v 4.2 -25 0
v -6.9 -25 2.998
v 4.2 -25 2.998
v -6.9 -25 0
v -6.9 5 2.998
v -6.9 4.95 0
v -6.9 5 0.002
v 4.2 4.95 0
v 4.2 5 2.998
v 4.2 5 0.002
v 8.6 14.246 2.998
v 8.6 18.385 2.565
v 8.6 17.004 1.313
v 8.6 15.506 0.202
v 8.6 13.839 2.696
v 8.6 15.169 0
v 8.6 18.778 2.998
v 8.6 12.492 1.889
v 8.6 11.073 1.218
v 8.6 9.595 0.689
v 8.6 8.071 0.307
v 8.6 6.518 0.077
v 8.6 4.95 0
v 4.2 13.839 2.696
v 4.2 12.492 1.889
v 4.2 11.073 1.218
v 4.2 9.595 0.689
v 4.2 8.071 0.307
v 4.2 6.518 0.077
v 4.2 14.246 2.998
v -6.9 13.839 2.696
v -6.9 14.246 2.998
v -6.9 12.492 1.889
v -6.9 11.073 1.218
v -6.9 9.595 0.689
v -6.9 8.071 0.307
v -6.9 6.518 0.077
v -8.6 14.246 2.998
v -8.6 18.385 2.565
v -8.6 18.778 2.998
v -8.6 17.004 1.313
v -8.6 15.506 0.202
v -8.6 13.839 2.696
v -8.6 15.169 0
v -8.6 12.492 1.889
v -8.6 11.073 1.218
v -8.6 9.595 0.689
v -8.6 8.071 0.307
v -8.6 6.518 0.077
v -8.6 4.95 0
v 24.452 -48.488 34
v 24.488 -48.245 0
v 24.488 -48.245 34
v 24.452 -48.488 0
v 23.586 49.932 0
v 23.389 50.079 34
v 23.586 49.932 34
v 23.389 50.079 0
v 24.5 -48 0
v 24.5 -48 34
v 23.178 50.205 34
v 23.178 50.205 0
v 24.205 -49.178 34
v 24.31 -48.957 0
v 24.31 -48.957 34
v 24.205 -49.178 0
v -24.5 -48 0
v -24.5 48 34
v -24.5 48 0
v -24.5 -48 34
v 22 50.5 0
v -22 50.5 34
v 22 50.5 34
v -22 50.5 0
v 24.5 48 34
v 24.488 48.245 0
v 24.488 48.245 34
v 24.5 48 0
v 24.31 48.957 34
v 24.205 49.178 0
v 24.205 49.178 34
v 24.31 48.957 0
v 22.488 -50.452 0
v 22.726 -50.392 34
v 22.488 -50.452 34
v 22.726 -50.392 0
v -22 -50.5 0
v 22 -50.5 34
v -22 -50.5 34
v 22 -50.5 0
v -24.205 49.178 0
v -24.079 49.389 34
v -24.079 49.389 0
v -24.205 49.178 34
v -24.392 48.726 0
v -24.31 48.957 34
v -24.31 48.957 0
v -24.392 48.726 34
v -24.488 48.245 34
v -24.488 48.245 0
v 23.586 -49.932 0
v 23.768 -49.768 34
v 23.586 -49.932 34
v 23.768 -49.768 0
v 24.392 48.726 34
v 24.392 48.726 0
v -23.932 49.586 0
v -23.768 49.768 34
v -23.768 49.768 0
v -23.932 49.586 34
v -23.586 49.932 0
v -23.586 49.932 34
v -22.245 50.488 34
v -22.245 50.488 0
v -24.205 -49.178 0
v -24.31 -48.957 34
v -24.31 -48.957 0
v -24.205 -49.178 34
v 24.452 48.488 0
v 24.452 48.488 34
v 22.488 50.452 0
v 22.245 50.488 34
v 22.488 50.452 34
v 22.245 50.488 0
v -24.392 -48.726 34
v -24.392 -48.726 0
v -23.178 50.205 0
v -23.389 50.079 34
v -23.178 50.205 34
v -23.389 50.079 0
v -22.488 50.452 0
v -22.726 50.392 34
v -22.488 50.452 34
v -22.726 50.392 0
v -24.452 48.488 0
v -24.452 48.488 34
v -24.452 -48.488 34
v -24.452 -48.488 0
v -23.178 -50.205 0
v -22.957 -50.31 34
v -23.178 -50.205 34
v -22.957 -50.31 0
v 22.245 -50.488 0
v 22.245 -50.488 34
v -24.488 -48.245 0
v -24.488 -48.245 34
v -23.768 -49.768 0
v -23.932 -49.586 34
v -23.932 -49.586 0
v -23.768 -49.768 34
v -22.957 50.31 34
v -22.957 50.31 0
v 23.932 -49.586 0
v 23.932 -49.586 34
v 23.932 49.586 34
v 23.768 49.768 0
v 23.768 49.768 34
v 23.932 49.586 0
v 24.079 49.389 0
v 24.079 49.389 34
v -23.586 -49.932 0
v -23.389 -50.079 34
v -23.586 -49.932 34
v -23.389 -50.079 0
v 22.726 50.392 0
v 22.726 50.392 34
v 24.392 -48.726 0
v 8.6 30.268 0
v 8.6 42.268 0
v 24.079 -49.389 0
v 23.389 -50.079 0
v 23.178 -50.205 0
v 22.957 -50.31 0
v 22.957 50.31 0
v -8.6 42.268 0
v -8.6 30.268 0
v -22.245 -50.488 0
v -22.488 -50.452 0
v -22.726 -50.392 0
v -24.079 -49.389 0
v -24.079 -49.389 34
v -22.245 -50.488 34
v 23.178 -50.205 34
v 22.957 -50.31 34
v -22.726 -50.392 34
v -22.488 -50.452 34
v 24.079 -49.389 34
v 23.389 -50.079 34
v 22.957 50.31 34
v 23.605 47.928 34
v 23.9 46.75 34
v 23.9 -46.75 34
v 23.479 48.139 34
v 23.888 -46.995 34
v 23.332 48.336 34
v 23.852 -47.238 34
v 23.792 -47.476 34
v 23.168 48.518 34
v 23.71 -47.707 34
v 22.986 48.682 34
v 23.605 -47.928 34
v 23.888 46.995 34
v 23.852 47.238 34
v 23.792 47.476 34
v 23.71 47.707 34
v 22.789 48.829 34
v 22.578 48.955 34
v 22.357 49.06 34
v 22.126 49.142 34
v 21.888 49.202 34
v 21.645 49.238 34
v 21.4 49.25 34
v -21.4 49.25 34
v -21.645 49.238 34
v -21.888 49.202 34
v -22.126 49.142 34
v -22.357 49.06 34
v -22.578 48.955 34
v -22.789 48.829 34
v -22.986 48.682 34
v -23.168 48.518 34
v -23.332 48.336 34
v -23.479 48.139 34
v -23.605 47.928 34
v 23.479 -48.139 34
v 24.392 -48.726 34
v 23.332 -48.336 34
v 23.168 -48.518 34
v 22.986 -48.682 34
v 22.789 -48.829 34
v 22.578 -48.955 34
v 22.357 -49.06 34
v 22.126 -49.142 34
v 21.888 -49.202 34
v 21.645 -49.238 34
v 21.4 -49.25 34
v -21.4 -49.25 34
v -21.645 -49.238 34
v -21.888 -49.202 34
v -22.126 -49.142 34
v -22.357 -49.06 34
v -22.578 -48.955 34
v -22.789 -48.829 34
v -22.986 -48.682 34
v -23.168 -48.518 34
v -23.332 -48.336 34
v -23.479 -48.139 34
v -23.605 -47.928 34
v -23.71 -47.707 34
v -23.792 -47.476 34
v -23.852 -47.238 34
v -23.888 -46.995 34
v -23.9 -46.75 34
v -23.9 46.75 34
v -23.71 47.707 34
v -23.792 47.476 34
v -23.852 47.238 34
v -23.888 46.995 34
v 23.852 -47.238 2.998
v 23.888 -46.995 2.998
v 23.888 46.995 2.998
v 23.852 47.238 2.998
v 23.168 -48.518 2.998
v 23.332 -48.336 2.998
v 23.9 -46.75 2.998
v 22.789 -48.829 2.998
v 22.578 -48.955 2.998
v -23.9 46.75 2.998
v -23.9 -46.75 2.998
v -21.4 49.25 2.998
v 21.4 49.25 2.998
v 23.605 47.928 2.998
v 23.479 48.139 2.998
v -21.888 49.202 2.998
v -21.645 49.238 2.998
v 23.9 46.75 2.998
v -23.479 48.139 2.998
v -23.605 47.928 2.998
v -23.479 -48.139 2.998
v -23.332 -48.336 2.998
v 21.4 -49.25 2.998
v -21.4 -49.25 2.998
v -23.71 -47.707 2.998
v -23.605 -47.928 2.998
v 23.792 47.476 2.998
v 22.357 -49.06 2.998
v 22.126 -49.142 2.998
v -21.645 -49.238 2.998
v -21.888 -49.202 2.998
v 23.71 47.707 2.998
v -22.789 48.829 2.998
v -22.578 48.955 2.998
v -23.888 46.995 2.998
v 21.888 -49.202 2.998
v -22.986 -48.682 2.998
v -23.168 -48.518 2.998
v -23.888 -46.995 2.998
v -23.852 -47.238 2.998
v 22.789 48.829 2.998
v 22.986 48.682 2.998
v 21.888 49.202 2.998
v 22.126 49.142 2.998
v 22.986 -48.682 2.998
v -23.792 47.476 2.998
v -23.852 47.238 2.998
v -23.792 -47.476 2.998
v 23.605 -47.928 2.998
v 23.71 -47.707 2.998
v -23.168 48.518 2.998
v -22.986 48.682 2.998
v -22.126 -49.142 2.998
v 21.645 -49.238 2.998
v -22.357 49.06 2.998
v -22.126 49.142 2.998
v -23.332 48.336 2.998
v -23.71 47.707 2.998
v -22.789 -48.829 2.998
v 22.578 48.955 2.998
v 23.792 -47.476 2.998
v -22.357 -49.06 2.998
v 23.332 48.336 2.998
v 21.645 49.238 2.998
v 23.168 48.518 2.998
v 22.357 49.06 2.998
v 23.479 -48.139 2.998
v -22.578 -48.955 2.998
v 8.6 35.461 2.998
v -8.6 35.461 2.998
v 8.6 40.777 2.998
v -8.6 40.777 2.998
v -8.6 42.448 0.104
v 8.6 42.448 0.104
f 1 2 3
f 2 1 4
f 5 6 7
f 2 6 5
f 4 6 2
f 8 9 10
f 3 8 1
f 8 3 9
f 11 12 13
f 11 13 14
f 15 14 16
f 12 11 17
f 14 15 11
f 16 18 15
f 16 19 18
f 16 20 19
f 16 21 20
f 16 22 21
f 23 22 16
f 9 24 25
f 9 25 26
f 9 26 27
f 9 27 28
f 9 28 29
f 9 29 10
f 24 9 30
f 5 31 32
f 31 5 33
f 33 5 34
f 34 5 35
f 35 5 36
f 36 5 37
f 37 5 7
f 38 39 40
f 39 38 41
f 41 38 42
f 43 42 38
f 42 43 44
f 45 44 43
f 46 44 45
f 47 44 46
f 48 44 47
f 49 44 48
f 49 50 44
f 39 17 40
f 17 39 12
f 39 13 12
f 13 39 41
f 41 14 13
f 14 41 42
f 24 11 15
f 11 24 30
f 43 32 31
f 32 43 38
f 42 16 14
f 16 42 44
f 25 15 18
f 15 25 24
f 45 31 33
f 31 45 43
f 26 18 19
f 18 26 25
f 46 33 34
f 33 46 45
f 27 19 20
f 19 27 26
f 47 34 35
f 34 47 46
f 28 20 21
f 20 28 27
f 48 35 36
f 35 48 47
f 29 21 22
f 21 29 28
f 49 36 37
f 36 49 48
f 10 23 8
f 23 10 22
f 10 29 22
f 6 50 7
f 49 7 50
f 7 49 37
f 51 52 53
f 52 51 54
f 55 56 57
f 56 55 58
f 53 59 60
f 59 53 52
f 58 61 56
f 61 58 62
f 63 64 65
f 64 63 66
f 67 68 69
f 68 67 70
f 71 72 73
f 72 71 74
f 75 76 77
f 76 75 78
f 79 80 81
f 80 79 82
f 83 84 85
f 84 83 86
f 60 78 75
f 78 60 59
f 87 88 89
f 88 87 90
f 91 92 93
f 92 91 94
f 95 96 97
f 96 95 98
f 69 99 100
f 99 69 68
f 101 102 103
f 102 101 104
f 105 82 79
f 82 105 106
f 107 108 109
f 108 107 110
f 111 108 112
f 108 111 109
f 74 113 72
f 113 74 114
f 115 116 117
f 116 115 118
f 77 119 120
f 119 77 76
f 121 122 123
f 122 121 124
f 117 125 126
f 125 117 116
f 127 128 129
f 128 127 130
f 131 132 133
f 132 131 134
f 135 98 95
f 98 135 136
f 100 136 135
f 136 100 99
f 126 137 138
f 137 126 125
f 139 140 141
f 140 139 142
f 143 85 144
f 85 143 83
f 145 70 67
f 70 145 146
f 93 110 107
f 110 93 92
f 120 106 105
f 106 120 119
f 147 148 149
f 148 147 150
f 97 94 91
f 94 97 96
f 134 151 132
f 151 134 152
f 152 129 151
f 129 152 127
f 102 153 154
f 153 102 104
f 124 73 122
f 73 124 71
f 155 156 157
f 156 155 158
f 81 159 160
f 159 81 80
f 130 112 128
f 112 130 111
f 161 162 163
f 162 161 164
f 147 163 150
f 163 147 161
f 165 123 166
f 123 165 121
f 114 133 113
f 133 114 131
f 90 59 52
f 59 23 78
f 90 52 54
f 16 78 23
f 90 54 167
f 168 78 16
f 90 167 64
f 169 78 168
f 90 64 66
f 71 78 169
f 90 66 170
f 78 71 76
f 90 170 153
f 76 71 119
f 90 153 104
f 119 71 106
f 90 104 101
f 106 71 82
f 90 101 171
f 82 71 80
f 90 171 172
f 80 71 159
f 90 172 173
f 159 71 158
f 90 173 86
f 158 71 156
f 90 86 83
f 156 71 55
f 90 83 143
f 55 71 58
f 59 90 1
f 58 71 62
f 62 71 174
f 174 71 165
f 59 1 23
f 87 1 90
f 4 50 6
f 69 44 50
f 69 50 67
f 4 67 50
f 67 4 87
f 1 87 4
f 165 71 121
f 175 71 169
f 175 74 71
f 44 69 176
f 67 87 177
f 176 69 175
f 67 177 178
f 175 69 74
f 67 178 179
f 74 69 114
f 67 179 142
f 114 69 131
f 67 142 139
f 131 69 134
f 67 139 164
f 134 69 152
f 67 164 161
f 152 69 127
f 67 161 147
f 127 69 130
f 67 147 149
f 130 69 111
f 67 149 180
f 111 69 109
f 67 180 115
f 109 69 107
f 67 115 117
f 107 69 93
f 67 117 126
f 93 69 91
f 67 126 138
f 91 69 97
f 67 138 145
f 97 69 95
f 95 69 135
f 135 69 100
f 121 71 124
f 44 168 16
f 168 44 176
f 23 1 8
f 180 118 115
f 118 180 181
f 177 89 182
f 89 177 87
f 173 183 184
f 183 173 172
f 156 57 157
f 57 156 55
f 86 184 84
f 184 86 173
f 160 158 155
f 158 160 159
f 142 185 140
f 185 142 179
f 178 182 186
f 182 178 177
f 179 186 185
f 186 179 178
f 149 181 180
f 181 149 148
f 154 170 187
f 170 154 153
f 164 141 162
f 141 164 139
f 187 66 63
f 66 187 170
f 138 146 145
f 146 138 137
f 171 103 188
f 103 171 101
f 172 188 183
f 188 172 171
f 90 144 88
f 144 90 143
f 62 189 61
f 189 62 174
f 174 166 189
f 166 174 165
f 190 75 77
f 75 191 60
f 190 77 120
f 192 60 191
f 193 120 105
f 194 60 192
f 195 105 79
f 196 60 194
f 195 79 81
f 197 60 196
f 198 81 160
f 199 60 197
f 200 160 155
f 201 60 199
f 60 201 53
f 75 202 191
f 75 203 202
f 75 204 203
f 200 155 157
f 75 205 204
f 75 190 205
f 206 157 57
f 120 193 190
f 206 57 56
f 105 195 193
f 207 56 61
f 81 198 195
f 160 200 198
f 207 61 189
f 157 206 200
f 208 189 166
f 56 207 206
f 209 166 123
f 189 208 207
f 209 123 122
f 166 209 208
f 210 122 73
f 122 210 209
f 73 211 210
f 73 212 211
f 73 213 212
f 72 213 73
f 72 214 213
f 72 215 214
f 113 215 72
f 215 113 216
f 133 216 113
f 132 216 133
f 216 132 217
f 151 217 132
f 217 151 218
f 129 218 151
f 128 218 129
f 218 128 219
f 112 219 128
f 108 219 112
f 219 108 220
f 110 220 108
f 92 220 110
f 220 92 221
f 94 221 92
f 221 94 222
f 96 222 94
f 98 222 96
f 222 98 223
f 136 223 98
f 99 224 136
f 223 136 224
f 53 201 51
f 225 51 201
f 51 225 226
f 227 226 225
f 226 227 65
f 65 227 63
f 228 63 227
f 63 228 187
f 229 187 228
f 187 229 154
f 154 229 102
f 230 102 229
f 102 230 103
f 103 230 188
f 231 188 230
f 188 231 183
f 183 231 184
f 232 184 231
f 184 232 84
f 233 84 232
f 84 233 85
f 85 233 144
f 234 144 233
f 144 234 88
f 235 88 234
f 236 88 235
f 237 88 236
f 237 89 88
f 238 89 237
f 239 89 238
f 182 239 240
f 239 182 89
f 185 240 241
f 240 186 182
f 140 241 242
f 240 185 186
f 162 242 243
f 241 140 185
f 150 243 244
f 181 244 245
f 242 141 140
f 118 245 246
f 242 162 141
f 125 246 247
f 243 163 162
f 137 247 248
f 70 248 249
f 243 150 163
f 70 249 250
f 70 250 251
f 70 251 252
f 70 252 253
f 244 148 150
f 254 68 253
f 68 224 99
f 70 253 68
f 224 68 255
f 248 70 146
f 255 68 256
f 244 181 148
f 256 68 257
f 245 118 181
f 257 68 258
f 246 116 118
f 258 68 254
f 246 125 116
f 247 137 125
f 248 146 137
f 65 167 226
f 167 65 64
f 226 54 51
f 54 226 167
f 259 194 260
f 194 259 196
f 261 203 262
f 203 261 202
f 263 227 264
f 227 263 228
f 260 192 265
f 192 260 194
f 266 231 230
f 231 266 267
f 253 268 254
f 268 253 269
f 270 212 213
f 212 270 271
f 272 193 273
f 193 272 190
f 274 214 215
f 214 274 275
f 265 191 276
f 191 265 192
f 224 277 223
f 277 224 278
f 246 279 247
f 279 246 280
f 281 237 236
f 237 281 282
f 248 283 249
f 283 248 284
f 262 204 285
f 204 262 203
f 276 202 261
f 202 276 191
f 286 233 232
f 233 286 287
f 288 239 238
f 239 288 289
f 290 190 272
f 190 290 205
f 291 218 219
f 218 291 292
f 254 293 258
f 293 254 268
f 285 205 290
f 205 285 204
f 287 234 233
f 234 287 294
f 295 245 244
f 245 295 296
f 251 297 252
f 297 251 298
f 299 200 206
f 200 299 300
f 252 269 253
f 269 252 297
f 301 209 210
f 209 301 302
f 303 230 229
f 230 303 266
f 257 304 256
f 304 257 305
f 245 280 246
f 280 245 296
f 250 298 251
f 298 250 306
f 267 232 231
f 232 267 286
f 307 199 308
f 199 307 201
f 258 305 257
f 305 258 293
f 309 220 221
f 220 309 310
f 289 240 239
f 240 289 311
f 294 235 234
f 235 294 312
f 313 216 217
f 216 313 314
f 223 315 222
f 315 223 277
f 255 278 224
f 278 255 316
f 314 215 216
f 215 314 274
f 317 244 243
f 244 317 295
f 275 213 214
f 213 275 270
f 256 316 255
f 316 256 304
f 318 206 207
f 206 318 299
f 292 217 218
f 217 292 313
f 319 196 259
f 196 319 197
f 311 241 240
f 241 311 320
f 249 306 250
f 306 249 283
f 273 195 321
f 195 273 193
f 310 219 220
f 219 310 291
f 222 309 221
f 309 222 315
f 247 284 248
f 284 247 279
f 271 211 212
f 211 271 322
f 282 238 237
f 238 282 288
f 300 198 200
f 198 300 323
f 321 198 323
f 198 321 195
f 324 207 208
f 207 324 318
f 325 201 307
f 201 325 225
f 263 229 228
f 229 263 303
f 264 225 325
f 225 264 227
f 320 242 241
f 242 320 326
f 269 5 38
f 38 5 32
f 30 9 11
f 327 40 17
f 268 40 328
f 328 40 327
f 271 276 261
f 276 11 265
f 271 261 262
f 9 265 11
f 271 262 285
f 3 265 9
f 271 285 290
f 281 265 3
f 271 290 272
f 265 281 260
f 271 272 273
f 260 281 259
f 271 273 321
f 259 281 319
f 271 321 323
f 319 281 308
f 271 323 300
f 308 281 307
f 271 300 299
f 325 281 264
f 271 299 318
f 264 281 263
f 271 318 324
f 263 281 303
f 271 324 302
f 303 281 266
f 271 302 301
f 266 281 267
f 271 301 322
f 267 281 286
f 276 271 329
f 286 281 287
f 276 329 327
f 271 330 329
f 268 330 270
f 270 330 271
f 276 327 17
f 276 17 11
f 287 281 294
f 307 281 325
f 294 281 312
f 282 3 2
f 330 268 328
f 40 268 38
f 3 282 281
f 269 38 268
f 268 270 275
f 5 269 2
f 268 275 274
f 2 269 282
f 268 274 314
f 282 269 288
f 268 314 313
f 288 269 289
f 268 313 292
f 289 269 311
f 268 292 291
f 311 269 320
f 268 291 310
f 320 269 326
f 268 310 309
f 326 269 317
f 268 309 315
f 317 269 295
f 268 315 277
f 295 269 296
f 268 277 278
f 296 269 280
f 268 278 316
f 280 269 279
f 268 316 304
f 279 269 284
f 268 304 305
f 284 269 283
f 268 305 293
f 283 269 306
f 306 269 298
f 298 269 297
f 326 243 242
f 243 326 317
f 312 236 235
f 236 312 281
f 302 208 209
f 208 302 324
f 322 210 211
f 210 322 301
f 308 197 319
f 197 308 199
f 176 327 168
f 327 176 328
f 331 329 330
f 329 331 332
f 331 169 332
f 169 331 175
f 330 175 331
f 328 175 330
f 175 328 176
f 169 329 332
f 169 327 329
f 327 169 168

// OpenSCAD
module SmdStripTop(){
  translate([0, 0, 34])rotate([0, 180, 0])difference(){
        translate([-24.5, -50.5, 0])union()linear_extrude(height=34)translate([2.5, 2.5, 0])hull(){
                  circle(d=5,$fn=64);
                  translate([44, 0, 0])circle(d=5,$fn=64);
                  translate([0, 96, 0])circle(d=5,$fn=64);
                  translate([44, 96, 0])circle(d=5,$fn=64);
                }

        translate([-23.9, -49.25, -0.002])union()linear_extrude(height=31.004)translate([2.5, 2.5, 0])hull(){
                  circle(d=5,$fn=64);
                  translate([42.8, 0, 0])circle(d=5,$fn=64);
                  translate([0, 93.5, 0])circle(d=5,$fn=64);
                  translate([42.8, 93.5, 0])circle(d=5,$fn=64);
                }

        translate([0, 32, 33])rotate([-30, 0, 0])translate([-8.6, -8.6, 0])cube([17.2, 17.2, 6]);
        translate([0, -10, 28.1])mirror([])mirror([])union(){
                translate([0, 14.95, -10.1])rotate([0, 90, 0])rotate_extrude(angle=180)translate([10, 0, -0.1])rotate([0, 0, 90])projection()translate([0, 0, -0.002])rotate([90, 0, 0])union(){
                                  translate([-8.6, -15, 6])cube([17.2, 30, 3]);
                                  translate([-4.2, -15, -0.002])cube([11.1, 30, 6.008]);
                                }

                translate([0, 0, -0.002])union(){
                    translate([-8.6, -15, 6])cube([17.2, 30, 3]);
                    translate([-4.2, -15, -0.002])cube([11.1, 30, 6.008]);
                  }

              }

      }
}
$fn=64;
color("DarkOliveGreen")SmdStripTop();
